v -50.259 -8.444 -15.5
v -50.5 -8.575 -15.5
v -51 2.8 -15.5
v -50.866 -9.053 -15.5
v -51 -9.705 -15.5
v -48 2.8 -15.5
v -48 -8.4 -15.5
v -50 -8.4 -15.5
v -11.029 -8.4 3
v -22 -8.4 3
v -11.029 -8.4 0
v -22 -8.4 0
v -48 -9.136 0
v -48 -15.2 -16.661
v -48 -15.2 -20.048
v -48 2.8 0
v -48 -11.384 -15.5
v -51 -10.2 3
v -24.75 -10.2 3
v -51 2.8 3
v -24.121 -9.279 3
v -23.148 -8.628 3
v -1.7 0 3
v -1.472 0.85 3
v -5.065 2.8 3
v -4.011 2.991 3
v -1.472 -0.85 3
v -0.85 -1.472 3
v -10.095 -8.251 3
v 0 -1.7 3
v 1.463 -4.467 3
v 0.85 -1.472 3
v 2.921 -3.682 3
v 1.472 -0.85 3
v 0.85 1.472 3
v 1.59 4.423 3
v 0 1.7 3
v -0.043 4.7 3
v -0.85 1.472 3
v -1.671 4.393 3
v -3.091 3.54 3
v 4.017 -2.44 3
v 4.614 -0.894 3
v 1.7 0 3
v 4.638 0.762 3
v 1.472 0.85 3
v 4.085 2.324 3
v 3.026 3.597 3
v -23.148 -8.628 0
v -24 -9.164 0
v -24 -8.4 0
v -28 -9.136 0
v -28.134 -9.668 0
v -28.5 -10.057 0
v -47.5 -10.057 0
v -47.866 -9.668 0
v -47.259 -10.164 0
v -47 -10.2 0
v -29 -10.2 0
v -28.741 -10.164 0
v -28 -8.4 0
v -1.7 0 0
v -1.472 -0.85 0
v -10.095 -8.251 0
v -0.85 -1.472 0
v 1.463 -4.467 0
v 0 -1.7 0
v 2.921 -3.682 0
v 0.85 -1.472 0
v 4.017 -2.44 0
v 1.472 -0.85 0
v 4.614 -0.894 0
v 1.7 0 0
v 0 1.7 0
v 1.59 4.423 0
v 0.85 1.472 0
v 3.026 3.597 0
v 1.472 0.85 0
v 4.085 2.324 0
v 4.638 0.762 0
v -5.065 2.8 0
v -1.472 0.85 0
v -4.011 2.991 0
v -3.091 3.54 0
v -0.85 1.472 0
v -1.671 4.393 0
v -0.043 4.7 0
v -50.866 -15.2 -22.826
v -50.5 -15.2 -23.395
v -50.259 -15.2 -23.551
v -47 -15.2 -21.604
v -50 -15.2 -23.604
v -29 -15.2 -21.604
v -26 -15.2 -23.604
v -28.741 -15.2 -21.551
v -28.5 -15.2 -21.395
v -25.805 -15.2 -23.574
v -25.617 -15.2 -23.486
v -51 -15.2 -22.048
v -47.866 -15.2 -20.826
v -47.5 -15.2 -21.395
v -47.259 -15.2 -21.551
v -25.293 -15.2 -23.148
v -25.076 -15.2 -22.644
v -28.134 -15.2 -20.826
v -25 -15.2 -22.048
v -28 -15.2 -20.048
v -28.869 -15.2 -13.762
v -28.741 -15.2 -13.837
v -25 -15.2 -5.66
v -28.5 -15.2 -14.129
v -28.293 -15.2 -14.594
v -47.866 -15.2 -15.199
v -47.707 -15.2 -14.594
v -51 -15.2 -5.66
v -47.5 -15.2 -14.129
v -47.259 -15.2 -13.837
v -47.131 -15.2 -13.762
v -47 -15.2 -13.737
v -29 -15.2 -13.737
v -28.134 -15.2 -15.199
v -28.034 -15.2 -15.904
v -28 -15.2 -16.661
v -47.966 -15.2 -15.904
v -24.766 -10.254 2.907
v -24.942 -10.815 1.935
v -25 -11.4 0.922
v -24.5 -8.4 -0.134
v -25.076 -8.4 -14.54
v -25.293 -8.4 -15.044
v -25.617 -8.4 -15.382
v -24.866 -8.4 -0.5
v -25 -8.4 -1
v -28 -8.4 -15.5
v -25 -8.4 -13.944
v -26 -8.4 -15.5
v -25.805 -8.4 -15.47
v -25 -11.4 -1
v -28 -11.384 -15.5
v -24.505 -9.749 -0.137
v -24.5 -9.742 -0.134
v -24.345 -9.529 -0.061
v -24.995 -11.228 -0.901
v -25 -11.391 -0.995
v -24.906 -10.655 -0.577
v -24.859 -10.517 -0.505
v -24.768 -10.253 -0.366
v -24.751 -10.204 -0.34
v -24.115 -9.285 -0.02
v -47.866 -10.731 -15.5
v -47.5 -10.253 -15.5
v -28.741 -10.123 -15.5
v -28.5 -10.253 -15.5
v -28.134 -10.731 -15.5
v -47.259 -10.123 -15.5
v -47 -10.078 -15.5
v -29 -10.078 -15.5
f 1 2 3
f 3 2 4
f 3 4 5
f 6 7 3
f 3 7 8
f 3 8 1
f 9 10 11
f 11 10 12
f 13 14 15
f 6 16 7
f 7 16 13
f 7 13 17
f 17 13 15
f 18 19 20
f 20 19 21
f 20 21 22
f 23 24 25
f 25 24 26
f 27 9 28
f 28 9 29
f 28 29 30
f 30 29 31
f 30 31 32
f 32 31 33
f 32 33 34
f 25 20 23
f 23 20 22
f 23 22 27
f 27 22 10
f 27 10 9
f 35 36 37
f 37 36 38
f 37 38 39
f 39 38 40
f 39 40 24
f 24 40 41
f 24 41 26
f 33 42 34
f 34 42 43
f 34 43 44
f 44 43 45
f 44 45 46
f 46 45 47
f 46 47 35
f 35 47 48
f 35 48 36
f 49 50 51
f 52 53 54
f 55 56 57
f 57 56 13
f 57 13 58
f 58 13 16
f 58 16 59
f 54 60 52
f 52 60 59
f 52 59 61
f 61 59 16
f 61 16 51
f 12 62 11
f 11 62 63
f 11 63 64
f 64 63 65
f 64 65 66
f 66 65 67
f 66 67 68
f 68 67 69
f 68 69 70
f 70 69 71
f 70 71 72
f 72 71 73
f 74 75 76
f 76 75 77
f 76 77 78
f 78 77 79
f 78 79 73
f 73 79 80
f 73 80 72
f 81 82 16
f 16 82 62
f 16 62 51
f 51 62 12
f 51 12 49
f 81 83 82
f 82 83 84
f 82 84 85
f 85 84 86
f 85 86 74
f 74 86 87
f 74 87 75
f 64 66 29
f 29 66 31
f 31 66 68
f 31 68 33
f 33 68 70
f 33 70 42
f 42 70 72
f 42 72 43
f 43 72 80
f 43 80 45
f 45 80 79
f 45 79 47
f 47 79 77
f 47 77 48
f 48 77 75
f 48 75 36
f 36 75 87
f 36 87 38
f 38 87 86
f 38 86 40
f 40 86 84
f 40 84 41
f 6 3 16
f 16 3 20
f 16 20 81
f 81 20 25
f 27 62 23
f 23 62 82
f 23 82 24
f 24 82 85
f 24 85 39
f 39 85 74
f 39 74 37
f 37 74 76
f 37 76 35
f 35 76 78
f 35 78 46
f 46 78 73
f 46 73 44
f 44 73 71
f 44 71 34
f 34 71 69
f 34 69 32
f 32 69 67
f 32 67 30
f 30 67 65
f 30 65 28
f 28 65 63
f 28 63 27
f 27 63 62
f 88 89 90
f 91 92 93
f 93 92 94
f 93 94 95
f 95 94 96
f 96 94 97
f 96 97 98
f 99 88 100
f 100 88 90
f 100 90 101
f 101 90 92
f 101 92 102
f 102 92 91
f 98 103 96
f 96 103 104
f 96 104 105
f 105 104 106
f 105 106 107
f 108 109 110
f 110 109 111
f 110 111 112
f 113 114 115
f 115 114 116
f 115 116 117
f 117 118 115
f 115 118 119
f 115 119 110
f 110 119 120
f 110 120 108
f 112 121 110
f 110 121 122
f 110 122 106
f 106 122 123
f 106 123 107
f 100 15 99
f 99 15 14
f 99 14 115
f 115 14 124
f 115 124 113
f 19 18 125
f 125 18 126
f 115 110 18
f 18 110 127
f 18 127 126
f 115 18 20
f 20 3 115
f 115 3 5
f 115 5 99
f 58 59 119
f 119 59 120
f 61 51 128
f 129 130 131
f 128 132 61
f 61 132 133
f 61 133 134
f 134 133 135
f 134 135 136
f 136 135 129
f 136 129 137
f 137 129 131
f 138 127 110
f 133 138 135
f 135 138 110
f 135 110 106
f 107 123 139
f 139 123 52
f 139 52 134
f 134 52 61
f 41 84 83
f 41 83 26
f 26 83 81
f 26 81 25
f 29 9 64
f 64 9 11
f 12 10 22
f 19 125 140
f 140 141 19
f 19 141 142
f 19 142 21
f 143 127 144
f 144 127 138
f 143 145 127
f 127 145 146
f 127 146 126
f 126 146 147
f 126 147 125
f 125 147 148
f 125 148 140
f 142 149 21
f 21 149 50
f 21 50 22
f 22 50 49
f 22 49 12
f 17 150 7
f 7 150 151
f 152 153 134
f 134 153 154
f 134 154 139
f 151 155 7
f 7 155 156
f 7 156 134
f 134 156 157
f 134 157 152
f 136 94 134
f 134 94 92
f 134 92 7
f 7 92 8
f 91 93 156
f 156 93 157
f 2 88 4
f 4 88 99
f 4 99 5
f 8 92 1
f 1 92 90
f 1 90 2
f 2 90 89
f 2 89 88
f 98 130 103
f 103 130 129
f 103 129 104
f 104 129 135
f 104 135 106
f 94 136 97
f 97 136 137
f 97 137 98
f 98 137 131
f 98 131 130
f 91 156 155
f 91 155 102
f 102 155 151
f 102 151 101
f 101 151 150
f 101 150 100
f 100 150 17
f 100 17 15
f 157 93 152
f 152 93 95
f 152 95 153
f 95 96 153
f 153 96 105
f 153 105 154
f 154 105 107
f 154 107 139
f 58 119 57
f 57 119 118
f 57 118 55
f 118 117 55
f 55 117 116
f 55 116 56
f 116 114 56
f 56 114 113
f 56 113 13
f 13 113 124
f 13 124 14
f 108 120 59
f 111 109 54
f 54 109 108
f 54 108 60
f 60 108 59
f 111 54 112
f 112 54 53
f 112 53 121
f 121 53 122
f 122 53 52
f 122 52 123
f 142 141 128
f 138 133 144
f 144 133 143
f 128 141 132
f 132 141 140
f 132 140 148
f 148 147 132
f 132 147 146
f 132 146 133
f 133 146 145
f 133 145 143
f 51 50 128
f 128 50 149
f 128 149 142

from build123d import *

# Parameters (mm, degrees)
SKETCH1_R           = 1.7
BOSS_EXTRUDE1_DEPTH = 3
BOSS_EXTRUDE2_DEPTH = 3
BOSS_EXTRUDE3_DEPTH = 20
BOSS_EXTRUDE4_DEPTH = 3
FILLET1_R           = 3
BOSS_EXTRUDE5_REACH = 38.788
BOSS_EXTRUDE6_DEPTH = 3
BOSS_EXTRUDE7_DEPTH = 3
FILLET3_R           = 1


with BuildPart() as part:
    # Sketch1 → Boss-Extrude1 (new body)
    with BuildSketch(Plane.XY):
        with BuildLine():
            Line((-3.774917218, 2.8), (-48, 2.8))
            Line((-48, 2.8), (-48, -10.2))
            Line((-48, -10.2), (-28, -10.2))
            Line((-28, -10.2), (-28, -8.4))
            Line((-28, -8.4), (-10.549988409, -8.4))
            Line((-10.549988409, -8.4), (1.462547038, -4.466649321))
            ThreePointArc((1.462547038, -4.466649321), (3.812848286, 2.748124442), (-3.774917218, 2.8))
        make_face()
        Circle(SKETCH1_R, mode=Mode.SUBTRACT)
    extrude(amount=BOSS_EXTRUDE1_DEPTH)

    # Sketch2 → Boss-Extrude2 (add)
    with BuildSketch(Plane.ZY.offset(48)):
        Polygon((-15.5, 2.8), (3, 2.8), (3, -10.2), (-5.660254038, -15.2), (-15.5, -15.2), align=None)
    extrude(amount=BOSS_EXTRUDE2_DEPTH)

    # Sketch3 → Boss-Extrude3 (add)
    with BuildSketch(Plane(origin=(-48, 0, 0), x_dir=(0, 0, -1), z_dir=(1, 0, 0))):
        Polygon((-3, -10.2), (0, -10.2), (13.737387097, -15.2), (5.660254038, -15.2), align=None)
    extrude(amount=BOSS_EXTRUDE3_DEPTH)

    # Sketch4 → Boss-Extrude4 (add)
    with BuildSketch(Plane(origin=(-28, 0, 0), x_dir=(0, 0, -1), z_dir=(1, 0, 0))):
        Polygon((-3, -10.2), (-3, -8.4), (15.5, -8.4), (15.5, -15.2), (5.660254038, -15.2), align=None)
    extrude(amount=BOSS_EXTRUDE4_DEPTH)

    # Fillet1
    fillet1_edges = [part.edges().sort_by_distance(p)[0] for p in [
        (-10.549988409, -8.4, 1.5),
        (-25, -8.4, 1.5),
        (-3.774917218, 2.8, 1.5),
    ]]
    fillet(fillet1_edges, radius=FILLET1_R)

    # Boss-Extrude5: up to this face of the body (flat: up to its plane)
    boss_extrude5_end = Plane(part.part.faces().sort_by_distance((-51, -5.690054126, -6.692488054))[0])
    # Sketch6 → Boss-Extrude5 (add, up to the picked face)
    with BuildSketch(Plane(origin=(-25, 0, 0), x_dir=(0, 0, -1), z_dir=(1, 0, 0)), mode=Mode.PRIVATE) as boss_extrude5_sk1:
        Polygon((15.5, -8.4), (23.60392443, -15.2), (21.60392443, -15.2), (15.5, -10.078199262), align=None)
    boss_extrude5_tool1 = split(extrude(boss_extrude5_sk1.sketch, amount=-BOSS_EXTRUDE5_REACH, mode=Mode.PRIVATE), bisect_by=boss_extrude5_end, keep=Keep.BOTH, mode=Mode.PRIVATE)
    add(boss_extrude5_tool1.solids().sort_by(Axis((-25, -12.199864, -19.075423), (-1, 0, 0)))[0])

    # Sketch7 → Boss-Extrude6 (add)
    with BuildSketch(Plane(origin=(-25, 0, 0), x_dir=(0, 0, -1), z_dir=(1, 0, 0))):
        Polygon((15.5, -15.2), (21.60392443, -15.2), (15.5, -10.078199262), align=None)
    extrude(amount=-BOSS_EXTRUDE6_DEPTH)

    # Sketch8 → Boss-Extrude7 (add)
    with BuildSketch(Plane.ZY.offset(51)):
        Polygon((-21.60392443, -15.2), (-15.5, -10.078199262), (-15.5, -15.2), align=None)
    extrude(amount=-BOSS_EXTRUDE7_DEPTH)

    # Fillet3
    fillet3_edges = [part.edges().sort_by_distance(p)[0] for p in [
        (-25, -11.8, -19.551962215),
        (-51, -11.8, -19.551962215),
        (-28, -12.639099631, -18.551962215),
        (-48, -12.639099631, -18.551962215),
        (-28, -12.7, -6.868693549),
        (-48, -12.7, -6.868693549),
        (-25, -9.9, 0),
    ]]
    fillet(fillet3_edges, radius=FILLET3_R)


solid = part.part
